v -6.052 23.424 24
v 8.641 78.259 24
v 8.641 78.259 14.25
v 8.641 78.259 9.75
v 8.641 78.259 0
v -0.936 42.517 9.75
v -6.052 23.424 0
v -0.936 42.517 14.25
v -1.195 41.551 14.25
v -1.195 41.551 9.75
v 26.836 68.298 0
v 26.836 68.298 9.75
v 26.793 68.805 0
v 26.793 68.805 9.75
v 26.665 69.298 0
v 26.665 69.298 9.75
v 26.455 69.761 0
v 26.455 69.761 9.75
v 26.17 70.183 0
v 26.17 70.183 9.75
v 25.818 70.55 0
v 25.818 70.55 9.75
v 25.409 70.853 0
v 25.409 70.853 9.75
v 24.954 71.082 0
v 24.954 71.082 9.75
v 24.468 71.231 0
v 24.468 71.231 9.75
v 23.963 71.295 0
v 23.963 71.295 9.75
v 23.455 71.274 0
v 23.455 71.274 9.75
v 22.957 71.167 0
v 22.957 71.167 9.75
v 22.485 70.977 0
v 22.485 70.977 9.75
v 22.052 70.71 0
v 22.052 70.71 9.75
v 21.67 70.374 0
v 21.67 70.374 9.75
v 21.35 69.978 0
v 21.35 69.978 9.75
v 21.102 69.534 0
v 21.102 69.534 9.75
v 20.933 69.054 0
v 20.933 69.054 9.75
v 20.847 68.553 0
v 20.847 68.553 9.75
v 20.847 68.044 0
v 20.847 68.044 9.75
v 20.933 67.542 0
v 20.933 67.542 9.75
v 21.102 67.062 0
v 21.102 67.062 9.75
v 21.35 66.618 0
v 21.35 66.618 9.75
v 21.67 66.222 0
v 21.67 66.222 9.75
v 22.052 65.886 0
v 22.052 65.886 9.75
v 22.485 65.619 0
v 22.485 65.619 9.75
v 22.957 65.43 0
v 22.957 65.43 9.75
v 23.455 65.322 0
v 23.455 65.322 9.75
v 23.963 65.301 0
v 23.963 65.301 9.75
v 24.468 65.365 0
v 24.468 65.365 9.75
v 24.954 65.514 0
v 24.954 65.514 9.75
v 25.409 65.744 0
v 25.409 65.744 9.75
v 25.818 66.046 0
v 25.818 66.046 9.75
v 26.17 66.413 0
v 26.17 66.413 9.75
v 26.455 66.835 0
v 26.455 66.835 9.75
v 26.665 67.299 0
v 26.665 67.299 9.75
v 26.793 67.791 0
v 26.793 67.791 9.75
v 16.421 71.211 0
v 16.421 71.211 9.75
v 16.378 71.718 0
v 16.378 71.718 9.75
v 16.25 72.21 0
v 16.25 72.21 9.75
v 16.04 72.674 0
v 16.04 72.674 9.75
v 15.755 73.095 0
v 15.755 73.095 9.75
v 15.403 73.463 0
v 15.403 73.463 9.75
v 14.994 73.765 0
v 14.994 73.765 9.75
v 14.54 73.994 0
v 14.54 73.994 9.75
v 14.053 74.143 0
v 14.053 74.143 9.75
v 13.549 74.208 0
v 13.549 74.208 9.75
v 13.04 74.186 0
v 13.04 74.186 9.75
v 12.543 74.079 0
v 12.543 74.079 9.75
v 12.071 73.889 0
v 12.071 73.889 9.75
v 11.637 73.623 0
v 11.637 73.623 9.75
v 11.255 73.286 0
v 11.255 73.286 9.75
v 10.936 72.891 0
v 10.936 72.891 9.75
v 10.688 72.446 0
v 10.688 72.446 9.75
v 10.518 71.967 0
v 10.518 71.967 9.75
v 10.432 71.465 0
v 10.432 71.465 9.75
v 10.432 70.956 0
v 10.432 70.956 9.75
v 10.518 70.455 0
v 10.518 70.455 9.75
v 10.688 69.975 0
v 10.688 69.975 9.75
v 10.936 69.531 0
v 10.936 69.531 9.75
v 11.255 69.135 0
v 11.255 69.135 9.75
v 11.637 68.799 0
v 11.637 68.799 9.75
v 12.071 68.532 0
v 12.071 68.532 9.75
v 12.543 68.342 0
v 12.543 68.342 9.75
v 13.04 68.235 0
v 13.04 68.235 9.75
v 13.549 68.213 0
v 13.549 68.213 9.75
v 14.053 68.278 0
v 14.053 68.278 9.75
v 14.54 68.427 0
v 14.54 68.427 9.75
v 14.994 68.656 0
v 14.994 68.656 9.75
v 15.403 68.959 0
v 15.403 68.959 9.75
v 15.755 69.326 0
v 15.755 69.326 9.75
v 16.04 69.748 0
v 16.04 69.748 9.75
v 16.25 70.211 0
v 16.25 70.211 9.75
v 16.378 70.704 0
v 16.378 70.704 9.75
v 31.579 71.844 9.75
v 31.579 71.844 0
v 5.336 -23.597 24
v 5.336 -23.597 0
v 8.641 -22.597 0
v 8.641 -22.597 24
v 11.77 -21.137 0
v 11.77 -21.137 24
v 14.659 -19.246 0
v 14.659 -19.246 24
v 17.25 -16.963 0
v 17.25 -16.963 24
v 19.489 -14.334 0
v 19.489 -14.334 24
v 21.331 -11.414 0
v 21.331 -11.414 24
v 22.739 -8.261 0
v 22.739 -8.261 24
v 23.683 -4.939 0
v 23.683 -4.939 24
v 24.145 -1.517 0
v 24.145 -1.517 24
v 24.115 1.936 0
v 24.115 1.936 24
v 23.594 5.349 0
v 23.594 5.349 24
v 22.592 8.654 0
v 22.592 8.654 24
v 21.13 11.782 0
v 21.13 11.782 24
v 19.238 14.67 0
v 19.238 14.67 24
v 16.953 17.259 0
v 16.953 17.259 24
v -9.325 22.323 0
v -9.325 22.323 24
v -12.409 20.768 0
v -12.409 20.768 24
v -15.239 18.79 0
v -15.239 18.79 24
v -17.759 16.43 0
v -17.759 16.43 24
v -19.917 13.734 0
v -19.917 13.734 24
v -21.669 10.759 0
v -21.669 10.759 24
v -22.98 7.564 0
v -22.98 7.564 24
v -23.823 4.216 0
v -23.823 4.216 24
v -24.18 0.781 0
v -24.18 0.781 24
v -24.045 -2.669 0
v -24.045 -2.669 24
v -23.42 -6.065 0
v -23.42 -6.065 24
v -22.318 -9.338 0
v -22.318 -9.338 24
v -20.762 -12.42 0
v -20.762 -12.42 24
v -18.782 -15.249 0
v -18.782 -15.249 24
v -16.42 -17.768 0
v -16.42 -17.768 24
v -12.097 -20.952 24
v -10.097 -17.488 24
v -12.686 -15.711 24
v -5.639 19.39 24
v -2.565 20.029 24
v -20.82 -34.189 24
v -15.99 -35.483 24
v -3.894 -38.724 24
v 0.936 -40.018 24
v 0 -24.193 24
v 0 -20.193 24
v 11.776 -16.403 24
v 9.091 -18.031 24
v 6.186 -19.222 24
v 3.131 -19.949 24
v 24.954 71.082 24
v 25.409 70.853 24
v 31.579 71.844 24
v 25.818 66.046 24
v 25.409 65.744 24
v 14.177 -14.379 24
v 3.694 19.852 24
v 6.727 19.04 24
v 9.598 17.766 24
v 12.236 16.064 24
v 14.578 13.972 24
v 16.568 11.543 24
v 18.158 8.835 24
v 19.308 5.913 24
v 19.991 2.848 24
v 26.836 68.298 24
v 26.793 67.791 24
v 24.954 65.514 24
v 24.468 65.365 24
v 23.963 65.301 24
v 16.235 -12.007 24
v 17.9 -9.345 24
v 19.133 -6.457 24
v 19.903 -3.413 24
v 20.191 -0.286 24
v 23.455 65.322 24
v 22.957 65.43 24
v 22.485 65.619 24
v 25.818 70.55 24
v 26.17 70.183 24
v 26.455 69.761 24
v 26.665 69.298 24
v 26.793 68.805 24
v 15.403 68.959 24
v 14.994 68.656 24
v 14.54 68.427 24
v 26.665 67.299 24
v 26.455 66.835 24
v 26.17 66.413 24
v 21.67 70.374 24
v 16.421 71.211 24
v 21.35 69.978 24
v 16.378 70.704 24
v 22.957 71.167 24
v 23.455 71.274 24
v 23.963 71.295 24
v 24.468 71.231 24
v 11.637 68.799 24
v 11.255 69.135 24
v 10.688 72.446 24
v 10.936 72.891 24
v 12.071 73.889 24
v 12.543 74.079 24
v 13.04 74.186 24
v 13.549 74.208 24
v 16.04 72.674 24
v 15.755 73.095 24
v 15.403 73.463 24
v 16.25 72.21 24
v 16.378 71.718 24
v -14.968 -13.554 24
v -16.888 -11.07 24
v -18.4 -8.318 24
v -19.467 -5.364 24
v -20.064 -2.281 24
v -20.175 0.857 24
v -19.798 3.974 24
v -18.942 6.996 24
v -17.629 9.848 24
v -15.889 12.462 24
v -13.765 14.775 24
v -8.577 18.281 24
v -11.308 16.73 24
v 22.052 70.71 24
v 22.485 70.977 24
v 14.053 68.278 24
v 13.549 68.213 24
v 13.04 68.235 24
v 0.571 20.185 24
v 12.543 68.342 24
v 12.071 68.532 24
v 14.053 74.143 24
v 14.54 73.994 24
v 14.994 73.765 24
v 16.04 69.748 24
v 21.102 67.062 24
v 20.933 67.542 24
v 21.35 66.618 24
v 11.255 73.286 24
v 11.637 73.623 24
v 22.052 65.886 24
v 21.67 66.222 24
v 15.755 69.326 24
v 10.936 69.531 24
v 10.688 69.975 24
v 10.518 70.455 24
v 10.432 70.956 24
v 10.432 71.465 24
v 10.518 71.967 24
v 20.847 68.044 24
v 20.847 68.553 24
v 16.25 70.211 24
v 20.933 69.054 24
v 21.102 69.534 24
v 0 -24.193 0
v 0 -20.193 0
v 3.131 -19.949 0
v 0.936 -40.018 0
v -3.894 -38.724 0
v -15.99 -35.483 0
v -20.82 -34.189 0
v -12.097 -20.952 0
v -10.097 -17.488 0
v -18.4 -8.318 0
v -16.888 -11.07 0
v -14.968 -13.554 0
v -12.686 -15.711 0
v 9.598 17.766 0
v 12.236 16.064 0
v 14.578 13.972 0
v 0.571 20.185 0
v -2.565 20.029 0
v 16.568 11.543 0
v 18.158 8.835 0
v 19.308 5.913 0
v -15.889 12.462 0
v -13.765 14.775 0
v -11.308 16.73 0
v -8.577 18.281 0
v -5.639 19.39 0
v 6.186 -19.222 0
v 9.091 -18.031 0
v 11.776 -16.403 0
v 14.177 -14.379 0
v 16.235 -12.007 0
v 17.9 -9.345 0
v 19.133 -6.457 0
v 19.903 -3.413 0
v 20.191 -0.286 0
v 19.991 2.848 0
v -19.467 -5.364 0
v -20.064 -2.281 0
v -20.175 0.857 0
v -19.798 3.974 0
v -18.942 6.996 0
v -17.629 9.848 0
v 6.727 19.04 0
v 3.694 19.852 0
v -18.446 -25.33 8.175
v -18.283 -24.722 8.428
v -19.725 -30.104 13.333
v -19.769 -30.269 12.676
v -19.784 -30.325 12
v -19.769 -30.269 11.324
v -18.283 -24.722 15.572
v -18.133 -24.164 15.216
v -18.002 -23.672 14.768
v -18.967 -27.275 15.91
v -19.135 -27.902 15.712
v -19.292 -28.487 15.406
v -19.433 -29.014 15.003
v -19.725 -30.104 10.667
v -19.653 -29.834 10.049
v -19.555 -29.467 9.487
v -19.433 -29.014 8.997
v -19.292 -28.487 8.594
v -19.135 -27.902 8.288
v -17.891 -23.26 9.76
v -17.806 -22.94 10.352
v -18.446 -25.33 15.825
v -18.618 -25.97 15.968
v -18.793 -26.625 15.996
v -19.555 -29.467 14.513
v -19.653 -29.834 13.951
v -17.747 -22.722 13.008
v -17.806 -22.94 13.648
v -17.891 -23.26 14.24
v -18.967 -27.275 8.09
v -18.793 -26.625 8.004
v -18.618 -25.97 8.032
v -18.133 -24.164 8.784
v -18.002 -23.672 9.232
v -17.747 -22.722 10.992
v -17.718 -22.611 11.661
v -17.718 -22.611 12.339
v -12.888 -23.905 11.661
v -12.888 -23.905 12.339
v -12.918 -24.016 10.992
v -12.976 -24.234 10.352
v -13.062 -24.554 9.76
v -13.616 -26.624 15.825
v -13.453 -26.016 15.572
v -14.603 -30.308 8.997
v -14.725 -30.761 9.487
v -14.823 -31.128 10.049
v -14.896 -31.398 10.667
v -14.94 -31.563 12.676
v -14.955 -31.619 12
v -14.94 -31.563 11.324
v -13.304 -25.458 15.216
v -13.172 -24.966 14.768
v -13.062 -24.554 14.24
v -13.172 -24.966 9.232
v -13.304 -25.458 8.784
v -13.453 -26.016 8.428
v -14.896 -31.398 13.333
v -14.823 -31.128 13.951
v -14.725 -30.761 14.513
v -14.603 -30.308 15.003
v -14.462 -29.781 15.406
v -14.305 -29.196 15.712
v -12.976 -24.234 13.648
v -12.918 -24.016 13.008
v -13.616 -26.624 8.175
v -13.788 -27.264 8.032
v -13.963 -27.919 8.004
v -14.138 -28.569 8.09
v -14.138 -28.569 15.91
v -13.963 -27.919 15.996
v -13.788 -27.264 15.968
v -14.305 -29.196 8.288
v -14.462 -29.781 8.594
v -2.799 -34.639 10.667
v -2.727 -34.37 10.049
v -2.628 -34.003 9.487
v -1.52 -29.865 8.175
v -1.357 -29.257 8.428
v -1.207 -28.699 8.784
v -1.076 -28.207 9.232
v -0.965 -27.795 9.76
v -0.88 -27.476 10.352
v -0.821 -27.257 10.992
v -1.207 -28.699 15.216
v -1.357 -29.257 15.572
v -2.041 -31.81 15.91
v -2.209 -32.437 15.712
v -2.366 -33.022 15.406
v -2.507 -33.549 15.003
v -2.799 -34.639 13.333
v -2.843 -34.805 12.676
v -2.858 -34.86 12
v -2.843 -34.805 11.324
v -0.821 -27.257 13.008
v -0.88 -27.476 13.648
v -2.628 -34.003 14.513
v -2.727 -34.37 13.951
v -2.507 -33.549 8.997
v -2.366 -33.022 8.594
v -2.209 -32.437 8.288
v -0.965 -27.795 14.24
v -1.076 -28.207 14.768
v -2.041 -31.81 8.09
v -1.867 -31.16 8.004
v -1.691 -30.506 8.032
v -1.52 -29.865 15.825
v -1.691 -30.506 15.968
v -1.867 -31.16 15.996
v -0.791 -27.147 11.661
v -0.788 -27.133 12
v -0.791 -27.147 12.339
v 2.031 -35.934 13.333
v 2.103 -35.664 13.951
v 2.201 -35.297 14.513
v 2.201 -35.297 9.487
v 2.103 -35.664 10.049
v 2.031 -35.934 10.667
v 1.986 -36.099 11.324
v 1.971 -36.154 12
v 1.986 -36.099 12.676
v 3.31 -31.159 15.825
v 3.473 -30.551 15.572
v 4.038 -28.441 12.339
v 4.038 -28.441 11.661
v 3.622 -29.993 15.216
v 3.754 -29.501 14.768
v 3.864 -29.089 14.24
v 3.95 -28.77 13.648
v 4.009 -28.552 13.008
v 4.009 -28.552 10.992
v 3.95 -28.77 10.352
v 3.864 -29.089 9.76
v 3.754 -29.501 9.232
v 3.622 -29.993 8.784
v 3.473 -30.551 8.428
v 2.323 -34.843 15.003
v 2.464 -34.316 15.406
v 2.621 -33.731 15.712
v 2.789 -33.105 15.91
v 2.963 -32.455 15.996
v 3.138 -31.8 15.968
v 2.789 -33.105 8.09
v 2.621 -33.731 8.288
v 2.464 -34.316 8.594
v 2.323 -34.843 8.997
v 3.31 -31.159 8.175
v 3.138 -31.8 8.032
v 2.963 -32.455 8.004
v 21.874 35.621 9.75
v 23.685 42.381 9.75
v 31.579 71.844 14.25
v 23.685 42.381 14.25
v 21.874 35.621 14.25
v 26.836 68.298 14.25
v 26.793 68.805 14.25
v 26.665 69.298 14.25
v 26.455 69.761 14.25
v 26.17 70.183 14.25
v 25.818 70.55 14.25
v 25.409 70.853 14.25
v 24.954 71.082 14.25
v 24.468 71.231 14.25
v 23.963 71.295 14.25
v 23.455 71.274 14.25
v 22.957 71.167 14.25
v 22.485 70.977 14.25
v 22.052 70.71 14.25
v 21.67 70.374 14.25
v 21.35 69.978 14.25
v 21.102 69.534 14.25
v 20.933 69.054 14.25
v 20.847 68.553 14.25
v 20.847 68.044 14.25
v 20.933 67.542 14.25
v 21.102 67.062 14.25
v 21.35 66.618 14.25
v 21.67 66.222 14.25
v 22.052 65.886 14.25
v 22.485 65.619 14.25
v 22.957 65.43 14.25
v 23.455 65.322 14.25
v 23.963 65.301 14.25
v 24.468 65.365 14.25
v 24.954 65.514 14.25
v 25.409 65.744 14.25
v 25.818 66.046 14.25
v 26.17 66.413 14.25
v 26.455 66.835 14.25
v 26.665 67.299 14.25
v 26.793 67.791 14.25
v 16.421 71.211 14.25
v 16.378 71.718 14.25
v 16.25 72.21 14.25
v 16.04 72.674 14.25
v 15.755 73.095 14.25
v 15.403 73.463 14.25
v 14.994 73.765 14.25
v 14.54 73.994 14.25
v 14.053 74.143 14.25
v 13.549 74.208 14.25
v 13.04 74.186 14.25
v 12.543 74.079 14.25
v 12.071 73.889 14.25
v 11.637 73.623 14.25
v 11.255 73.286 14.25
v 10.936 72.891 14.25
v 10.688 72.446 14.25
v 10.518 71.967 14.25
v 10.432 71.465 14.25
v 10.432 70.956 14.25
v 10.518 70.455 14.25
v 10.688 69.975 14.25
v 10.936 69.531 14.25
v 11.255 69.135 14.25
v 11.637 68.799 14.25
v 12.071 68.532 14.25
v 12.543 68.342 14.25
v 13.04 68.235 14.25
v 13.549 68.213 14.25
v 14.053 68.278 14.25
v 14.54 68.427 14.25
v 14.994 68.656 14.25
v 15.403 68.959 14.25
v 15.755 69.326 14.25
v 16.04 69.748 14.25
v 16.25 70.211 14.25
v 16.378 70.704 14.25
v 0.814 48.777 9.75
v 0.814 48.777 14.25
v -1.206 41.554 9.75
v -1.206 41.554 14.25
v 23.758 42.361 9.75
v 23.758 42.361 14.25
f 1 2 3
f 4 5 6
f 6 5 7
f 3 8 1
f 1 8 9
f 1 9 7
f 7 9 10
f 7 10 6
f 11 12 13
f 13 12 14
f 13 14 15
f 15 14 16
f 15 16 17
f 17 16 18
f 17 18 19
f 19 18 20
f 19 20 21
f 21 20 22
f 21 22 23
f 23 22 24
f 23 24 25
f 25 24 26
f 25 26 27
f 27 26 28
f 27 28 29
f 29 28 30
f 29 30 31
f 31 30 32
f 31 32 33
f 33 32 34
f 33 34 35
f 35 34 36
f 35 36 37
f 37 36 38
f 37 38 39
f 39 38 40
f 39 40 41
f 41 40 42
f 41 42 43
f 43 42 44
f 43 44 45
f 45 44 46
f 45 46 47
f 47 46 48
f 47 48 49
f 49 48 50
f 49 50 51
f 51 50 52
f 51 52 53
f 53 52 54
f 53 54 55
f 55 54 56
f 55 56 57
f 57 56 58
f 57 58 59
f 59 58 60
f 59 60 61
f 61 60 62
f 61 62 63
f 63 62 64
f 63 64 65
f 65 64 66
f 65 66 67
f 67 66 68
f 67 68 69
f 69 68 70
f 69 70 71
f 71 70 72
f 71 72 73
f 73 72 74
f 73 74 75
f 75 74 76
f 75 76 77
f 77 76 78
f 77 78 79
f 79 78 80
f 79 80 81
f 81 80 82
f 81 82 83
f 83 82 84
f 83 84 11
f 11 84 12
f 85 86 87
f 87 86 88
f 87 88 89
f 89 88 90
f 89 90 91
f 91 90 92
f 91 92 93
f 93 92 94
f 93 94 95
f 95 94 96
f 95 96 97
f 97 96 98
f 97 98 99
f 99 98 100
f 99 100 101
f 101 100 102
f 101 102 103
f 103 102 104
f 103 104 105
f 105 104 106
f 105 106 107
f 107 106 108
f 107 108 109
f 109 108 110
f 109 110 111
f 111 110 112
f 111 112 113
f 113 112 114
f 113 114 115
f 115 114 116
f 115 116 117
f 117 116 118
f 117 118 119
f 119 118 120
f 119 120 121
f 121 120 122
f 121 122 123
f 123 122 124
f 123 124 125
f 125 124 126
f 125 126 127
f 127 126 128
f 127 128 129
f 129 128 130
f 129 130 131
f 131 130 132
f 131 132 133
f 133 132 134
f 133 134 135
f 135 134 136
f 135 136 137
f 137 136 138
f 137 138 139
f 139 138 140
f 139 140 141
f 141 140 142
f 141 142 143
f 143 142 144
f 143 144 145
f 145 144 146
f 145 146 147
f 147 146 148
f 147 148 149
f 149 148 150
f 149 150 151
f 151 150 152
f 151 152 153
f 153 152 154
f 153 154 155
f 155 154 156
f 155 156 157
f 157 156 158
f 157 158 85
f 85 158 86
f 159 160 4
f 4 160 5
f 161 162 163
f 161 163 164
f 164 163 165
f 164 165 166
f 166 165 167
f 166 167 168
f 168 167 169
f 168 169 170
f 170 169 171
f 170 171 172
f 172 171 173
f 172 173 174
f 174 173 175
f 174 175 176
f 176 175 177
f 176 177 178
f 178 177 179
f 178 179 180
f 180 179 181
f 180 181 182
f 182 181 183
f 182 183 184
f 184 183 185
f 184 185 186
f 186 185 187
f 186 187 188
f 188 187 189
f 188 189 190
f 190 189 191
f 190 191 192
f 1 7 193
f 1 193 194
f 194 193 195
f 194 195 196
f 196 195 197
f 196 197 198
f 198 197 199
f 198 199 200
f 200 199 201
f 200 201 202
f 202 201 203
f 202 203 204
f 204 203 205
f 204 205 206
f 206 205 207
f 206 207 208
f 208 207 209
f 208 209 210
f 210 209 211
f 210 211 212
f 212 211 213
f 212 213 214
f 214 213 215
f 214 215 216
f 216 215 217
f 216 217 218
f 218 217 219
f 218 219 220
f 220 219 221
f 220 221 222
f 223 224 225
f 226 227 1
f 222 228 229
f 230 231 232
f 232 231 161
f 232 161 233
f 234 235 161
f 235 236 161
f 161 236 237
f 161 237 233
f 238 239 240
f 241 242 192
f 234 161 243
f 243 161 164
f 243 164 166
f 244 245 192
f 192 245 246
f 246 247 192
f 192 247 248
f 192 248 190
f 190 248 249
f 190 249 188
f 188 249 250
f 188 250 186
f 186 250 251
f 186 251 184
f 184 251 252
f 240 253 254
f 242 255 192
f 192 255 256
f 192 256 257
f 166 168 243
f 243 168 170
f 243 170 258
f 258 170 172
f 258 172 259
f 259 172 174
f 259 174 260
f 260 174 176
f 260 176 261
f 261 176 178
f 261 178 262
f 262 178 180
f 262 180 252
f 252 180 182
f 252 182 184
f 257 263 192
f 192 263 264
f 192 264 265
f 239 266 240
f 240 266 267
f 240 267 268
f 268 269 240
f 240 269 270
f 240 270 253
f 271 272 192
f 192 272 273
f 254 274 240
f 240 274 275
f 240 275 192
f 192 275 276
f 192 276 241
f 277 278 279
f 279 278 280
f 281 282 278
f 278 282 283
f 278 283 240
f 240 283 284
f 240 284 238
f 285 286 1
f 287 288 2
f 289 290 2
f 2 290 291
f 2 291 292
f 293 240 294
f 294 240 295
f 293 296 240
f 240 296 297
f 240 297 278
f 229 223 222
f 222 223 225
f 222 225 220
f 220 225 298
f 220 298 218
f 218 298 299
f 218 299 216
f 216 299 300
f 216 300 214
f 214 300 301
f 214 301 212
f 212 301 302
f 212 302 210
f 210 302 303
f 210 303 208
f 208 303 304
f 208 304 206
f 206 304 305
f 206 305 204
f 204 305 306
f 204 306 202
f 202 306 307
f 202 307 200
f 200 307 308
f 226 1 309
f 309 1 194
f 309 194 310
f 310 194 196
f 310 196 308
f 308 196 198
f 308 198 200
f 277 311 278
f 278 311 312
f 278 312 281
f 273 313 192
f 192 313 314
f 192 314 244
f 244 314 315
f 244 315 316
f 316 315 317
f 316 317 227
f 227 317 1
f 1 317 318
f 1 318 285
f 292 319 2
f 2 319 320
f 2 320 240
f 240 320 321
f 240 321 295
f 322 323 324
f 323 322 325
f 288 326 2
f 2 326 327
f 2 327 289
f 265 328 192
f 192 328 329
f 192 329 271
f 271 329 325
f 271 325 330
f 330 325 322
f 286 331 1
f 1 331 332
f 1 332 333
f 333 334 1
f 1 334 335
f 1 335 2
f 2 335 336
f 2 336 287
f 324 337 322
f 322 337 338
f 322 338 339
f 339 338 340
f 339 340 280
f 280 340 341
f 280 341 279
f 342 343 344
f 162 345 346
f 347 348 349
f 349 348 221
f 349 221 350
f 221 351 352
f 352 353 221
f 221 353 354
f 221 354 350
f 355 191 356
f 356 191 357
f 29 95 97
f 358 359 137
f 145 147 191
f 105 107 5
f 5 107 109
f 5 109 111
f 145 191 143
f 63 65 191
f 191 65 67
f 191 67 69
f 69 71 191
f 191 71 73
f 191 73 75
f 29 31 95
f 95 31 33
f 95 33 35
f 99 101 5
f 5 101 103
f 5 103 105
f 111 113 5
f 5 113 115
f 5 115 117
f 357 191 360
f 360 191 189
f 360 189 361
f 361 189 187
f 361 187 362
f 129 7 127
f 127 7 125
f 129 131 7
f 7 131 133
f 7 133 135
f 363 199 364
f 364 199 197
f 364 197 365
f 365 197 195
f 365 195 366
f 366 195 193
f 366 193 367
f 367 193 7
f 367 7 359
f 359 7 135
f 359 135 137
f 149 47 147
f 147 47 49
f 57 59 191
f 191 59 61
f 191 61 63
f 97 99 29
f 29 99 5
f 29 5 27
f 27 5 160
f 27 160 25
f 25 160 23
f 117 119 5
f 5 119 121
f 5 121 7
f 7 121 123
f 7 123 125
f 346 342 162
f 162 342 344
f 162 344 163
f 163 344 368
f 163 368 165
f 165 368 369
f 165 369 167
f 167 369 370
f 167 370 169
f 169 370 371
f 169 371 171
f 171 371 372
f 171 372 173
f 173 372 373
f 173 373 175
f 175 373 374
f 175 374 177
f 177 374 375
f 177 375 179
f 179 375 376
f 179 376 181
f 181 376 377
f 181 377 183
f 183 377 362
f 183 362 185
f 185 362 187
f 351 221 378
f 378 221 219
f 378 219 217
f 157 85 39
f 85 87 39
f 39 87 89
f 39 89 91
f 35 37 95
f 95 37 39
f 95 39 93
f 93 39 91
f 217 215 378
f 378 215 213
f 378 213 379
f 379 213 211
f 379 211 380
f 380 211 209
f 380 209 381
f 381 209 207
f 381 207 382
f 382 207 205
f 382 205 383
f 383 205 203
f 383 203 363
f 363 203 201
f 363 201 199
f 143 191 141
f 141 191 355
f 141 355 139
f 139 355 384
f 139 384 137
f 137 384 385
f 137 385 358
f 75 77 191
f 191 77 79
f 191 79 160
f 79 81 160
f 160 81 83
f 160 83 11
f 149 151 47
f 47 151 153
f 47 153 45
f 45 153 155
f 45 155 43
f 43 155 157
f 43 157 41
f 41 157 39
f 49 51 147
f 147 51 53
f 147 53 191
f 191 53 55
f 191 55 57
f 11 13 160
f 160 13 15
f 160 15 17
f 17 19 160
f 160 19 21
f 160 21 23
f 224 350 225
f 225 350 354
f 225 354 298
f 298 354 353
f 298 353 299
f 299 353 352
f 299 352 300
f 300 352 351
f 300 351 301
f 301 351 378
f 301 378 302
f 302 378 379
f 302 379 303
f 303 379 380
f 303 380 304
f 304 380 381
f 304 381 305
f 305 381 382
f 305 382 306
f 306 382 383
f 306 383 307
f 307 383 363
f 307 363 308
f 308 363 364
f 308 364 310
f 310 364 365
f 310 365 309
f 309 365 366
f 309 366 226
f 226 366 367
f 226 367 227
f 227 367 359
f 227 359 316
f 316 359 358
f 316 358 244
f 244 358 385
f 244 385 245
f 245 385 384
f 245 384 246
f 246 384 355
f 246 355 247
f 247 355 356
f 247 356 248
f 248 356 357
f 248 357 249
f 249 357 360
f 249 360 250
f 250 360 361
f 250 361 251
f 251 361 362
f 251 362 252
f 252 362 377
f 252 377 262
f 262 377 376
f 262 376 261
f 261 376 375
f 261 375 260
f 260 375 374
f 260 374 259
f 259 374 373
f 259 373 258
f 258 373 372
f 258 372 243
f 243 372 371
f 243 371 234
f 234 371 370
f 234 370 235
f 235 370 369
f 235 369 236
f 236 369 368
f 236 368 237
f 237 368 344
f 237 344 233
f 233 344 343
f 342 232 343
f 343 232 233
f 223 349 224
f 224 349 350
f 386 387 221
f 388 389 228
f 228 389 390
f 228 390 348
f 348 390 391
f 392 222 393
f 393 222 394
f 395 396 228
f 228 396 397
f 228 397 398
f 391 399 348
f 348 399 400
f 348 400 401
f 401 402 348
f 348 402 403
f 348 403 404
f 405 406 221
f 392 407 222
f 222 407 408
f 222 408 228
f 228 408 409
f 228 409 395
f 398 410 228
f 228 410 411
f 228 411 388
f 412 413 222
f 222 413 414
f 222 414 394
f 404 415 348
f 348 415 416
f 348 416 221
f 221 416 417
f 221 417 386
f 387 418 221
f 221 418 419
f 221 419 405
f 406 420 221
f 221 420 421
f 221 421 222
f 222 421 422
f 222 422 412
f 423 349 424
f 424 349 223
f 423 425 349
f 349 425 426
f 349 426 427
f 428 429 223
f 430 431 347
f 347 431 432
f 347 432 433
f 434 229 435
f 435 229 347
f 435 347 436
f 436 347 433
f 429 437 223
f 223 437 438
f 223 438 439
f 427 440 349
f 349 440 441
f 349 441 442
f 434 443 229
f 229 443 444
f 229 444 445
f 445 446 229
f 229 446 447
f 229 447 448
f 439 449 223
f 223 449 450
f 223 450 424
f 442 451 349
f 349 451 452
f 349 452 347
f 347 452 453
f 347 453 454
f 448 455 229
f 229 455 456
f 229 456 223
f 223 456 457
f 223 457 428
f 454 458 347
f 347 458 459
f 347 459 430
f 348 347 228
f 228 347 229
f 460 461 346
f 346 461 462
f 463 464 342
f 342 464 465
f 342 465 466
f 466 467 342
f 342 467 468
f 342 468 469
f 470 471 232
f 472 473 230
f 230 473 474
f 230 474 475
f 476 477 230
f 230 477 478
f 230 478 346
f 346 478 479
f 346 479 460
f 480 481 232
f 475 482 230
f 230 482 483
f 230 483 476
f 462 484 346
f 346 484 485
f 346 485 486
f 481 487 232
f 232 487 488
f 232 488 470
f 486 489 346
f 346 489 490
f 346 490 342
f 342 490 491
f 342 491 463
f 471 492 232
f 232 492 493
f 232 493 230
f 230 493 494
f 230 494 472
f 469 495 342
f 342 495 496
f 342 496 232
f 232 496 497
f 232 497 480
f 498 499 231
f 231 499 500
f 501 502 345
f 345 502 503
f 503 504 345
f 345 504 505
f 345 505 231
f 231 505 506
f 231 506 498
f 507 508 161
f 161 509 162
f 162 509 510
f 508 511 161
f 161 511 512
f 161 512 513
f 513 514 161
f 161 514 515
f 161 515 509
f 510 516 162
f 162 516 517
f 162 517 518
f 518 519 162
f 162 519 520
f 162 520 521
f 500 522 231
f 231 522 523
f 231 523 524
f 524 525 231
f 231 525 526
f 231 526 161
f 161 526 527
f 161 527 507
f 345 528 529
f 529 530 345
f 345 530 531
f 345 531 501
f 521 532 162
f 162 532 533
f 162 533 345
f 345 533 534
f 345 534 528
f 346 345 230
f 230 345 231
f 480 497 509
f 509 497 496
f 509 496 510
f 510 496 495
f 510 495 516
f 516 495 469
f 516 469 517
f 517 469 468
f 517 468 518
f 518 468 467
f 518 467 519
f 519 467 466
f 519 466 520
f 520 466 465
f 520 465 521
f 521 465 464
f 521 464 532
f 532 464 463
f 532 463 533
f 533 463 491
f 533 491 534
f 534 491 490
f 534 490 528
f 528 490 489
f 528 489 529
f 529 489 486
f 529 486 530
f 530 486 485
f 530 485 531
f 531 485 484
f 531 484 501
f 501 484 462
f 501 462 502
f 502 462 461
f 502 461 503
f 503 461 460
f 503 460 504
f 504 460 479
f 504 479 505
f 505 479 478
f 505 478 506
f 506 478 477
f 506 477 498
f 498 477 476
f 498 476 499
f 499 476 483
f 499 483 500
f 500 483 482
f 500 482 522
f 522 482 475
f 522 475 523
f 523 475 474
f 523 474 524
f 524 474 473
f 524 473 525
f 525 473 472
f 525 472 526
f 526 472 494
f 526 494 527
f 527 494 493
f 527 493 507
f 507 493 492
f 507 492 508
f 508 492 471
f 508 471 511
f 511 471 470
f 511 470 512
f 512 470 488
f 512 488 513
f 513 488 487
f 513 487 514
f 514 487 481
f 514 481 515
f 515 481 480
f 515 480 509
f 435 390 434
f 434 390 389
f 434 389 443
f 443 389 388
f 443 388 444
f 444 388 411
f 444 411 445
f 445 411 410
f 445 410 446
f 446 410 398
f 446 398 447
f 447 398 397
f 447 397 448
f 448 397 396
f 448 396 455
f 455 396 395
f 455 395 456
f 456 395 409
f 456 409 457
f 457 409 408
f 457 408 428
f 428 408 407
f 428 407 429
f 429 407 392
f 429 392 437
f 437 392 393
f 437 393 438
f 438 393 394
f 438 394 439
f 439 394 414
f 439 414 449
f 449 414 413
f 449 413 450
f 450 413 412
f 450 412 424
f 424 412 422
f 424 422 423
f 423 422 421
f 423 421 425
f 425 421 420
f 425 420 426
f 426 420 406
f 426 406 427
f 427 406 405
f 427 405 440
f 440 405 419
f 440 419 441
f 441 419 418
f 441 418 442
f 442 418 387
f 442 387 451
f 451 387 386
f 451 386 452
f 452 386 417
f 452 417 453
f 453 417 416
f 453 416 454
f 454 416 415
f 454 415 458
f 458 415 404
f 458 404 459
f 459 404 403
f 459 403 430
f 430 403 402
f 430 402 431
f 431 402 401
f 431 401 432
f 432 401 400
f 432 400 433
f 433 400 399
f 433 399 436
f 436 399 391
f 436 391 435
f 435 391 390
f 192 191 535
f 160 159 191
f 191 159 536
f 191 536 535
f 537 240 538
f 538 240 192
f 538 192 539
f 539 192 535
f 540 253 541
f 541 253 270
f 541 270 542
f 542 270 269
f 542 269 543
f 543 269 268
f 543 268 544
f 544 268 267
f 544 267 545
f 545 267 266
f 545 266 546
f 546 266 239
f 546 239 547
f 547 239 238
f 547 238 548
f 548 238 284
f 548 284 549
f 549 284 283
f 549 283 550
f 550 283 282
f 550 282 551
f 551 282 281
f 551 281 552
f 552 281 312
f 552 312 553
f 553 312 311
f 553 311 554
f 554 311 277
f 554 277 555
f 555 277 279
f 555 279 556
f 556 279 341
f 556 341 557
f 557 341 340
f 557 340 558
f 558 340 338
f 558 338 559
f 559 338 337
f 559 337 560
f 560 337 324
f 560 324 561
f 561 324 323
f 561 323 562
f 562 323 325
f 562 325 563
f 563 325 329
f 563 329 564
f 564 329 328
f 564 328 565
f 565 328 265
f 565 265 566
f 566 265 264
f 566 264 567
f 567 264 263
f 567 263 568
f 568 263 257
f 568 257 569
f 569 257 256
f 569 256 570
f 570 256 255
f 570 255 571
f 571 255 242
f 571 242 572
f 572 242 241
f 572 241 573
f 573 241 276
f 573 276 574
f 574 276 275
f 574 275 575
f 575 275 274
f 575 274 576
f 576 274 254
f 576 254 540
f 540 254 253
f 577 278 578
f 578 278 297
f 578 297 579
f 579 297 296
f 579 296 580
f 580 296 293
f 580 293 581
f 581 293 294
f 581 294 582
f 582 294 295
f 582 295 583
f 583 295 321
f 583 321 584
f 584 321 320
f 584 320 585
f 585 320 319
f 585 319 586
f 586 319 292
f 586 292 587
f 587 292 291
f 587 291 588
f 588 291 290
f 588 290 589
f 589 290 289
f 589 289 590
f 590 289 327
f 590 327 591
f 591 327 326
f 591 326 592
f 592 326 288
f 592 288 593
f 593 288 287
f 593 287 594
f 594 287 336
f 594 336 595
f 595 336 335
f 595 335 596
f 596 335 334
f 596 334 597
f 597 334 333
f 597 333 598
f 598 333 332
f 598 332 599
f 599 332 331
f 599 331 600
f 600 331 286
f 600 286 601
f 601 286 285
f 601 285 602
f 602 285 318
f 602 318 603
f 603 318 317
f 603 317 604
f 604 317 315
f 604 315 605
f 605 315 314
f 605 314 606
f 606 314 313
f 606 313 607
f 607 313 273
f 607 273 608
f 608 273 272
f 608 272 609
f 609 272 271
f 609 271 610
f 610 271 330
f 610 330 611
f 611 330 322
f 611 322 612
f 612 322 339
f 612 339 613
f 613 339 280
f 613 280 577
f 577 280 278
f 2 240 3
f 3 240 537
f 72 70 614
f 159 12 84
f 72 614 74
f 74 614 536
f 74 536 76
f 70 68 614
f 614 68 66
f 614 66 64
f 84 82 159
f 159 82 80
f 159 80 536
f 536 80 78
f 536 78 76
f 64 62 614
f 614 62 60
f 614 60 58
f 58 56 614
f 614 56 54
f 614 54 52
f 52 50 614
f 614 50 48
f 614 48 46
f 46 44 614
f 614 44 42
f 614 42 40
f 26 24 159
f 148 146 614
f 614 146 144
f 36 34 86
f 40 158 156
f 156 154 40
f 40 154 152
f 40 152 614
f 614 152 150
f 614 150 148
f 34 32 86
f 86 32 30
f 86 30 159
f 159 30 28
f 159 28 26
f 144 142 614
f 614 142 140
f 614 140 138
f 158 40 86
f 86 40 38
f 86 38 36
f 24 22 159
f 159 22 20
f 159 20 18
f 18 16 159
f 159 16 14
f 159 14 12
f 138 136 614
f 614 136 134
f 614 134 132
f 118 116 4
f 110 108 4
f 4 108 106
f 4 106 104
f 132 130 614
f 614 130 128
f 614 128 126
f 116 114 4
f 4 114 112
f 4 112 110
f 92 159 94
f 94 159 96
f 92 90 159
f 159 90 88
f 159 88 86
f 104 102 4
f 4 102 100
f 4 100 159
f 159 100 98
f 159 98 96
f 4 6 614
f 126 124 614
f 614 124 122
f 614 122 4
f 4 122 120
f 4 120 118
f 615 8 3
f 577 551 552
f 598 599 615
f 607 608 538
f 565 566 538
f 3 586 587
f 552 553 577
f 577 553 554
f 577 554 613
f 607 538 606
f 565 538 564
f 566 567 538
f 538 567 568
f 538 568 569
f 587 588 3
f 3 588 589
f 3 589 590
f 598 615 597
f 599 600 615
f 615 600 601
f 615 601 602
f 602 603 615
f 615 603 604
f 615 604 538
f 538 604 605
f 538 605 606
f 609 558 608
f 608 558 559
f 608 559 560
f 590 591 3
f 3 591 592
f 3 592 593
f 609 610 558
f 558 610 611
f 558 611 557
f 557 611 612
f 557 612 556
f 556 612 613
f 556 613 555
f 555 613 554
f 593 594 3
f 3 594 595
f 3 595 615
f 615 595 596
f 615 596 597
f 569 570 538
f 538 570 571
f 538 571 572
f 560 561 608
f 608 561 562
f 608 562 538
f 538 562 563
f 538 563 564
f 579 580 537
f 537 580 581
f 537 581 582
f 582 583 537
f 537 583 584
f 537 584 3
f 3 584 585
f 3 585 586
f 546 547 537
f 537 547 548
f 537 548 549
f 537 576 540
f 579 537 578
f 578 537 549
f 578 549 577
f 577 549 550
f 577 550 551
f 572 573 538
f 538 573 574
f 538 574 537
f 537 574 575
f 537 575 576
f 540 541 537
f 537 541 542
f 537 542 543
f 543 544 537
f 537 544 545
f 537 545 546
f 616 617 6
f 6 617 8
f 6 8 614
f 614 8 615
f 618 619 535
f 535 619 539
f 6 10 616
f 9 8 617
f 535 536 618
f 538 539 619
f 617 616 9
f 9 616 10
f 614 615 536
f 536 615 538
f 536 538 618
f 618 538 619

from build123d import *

# Parameters (mm, degrees)
SKETCH1_R                = 24.193
SKETCH1_R_2              = 20.193
BOSS_EXTRUDE1_DEPTH      = 24
CUT_EXTRUDE1_DEPTH       = 24
BOSS_EXTRUDE2_DEPTH      = 24
SKETCH4_R                = 4
CUT_EXTRUDE2_DEPTH       = 24
SKETCH5_R                = 3
BOSS_EXTRUDE3_DEPTH      = 24
CUT_EXTRUDE3_DEPTH       = 37
SKETCH7_W                = 4.5
SKETCH7_H                = 37.5
CUT_EXTRUDE4_DEPTH       = 0.5
SKETCH8_W                = 23.824241379
SKETCH8_H                = 4.5
BOSS_EXTRUDE4_DEPTH      = 6.5
BOSS_EXTRUDE4_DEPTH_BACK = 1


with BuildPart() as part:
    # Sketch1 → Boss-Extrude1 (new body)
    with BuildSketch(Plane.XY):
        Circle(SKETCH1_R)
        Circle(SKETCH1_R_2, mode=Mode.SUBTRACT)
    extrude(amount=BOSS_EXTRUDE1_DEPTH)

    # Sketch2 → Cut-Extrude1 (cut)
    with BuildSketch(Plane.XY.offset(24)):
        Polygon((0, -24.193), (-5.8341998, -24.895299835), (-12.0965, -20.951752594), (0, 0), align=None)
    extrude(amount=-CUT_EXTRUDE1_DEPTH, mode=Mode.SUBTRACT)

    # Sketch3 → Boss-Extrude2 (add)
    with BuildSketch(Plane.XY.offset(24)):
        with BuildLine():
            Line((-15.990029306, -35.482601784), (-12.0965, -20.951752594))
            ThreePointArc((-12.0965, -20.951752594), (-14.346719144, -19.480064138), (-16.419734671, -17.767767512))
            Line((-16.419734671, -17.767767512), (-20.819658437, -34.188506559))
            Line((-20.819658437, -34.188506559), (-15.990029306, -35.482601784))
        make_face()
        with BuildLine():
            ThreePointArc((5.336023592, -23.597205369), (2.684591171, -24.043589982), (0, -24.193))
            Line((0, -24.193), (-3.893529306, -38.72384919))
            Line((-3.893529306, -38.72384919), (0.936099826, -40.017944416))
            Line((0.936099826, -40.017944416), (5.336023592, -23.597205369))
        make_face()
    extrude(amount=-BOSS_EXTRUDE2_DEPTH)

    # Sketch4 → Cut-Extrude2 (cut)
    with BuildSketch(Plane(origin=(-10.877879131, 2.914718929, 0), x_dir=(0, 0, 1), z_dir=(-0.965925826, 0.258819045, 0))):
        with Locations((12, -30.412085563)):
            Circle(SKETCH4_R)
    extrude(amount=-CUT_EXTRUDE2_DEPTH, mode=Mode.SUBTRACT)

    # Sketch5 → Boss-Extrude3 (add)
    with BuildSketch(Plane.XY.offset(24)):
        Polygon((16.953408399, 17.259292937), (31.579228629, 71.843597138), (8.640561787, 78.258704162), (-6.052435886, 23.423690334), align=None)
        with Locations((23.835868108, 68.298098762)):
            Circle(SKETCH5_R, mode=Mode.SUBTRACT)
        with Locations((13.421299193, 71.210673179)):
            Circle(SKETCH5_R, mode=Mode.SUBTRACT)
    extrude(amount=-BOSS_EXTRUDE3_DEPTH)

    # Sketch6 → Cut-Extrude3 (cut)
    with BuildSketch(Plane(origin=(20.925291279, 74.82311416, 0), x_dir=(0.963048124, -0.269329374, 0), z_dir=(0.269329374, 0.963048124, 0))):
        Polygon((-0.846682582, -9.75), (-12.756090991, -9.75), (-12.756090991, -14.25), (-0.846682582, -14.25), (11.062725828, -14.25), (11.062725828, -9.75), align=None)
    extrude(amount=-CUT_EXTRUDE3_DEPTH, mode=Mode.SUBTRACT)

    # Sketch7 → Cut-Extrude4 (cut)
    with BuildSketch(Plane(origin=(11.502922142, -3.082198699, 0), x_dir=(0, 0, -1), z_dir=(0.965925826, -0.258819045, 0))):
        with Locations((-12, 58.818891727)):
            Rectangle(SKETCH7_W, SKETCH7_H)
    extrude(amount=-CUT_EXTRUDE4_DEPTH, mode=Mode.SUBTRACT)

    # Sketch8 → Boss-Extrude4 (add, two sides)
    with BuildSketch(Plane(origin=(10.960104439, 39.190333589, 0), x_dir=(0.963048124, -0.269329374, 0), z_dir=(0.269329374, 0.963048124, 0))) as boss_extrude4_sk:
        with Locations((-0.44075727, -12)):
            Rectangle(SKETCH8_W, SKETCH8_H)
    extrude(amount=BOSS_EXTRUDE4_DEPTH)
    extrude(boss_extrude4_sk.sketch, amount=-BOSS_EXTRUDE4_DEPTH_BACK)


solid = part.part
